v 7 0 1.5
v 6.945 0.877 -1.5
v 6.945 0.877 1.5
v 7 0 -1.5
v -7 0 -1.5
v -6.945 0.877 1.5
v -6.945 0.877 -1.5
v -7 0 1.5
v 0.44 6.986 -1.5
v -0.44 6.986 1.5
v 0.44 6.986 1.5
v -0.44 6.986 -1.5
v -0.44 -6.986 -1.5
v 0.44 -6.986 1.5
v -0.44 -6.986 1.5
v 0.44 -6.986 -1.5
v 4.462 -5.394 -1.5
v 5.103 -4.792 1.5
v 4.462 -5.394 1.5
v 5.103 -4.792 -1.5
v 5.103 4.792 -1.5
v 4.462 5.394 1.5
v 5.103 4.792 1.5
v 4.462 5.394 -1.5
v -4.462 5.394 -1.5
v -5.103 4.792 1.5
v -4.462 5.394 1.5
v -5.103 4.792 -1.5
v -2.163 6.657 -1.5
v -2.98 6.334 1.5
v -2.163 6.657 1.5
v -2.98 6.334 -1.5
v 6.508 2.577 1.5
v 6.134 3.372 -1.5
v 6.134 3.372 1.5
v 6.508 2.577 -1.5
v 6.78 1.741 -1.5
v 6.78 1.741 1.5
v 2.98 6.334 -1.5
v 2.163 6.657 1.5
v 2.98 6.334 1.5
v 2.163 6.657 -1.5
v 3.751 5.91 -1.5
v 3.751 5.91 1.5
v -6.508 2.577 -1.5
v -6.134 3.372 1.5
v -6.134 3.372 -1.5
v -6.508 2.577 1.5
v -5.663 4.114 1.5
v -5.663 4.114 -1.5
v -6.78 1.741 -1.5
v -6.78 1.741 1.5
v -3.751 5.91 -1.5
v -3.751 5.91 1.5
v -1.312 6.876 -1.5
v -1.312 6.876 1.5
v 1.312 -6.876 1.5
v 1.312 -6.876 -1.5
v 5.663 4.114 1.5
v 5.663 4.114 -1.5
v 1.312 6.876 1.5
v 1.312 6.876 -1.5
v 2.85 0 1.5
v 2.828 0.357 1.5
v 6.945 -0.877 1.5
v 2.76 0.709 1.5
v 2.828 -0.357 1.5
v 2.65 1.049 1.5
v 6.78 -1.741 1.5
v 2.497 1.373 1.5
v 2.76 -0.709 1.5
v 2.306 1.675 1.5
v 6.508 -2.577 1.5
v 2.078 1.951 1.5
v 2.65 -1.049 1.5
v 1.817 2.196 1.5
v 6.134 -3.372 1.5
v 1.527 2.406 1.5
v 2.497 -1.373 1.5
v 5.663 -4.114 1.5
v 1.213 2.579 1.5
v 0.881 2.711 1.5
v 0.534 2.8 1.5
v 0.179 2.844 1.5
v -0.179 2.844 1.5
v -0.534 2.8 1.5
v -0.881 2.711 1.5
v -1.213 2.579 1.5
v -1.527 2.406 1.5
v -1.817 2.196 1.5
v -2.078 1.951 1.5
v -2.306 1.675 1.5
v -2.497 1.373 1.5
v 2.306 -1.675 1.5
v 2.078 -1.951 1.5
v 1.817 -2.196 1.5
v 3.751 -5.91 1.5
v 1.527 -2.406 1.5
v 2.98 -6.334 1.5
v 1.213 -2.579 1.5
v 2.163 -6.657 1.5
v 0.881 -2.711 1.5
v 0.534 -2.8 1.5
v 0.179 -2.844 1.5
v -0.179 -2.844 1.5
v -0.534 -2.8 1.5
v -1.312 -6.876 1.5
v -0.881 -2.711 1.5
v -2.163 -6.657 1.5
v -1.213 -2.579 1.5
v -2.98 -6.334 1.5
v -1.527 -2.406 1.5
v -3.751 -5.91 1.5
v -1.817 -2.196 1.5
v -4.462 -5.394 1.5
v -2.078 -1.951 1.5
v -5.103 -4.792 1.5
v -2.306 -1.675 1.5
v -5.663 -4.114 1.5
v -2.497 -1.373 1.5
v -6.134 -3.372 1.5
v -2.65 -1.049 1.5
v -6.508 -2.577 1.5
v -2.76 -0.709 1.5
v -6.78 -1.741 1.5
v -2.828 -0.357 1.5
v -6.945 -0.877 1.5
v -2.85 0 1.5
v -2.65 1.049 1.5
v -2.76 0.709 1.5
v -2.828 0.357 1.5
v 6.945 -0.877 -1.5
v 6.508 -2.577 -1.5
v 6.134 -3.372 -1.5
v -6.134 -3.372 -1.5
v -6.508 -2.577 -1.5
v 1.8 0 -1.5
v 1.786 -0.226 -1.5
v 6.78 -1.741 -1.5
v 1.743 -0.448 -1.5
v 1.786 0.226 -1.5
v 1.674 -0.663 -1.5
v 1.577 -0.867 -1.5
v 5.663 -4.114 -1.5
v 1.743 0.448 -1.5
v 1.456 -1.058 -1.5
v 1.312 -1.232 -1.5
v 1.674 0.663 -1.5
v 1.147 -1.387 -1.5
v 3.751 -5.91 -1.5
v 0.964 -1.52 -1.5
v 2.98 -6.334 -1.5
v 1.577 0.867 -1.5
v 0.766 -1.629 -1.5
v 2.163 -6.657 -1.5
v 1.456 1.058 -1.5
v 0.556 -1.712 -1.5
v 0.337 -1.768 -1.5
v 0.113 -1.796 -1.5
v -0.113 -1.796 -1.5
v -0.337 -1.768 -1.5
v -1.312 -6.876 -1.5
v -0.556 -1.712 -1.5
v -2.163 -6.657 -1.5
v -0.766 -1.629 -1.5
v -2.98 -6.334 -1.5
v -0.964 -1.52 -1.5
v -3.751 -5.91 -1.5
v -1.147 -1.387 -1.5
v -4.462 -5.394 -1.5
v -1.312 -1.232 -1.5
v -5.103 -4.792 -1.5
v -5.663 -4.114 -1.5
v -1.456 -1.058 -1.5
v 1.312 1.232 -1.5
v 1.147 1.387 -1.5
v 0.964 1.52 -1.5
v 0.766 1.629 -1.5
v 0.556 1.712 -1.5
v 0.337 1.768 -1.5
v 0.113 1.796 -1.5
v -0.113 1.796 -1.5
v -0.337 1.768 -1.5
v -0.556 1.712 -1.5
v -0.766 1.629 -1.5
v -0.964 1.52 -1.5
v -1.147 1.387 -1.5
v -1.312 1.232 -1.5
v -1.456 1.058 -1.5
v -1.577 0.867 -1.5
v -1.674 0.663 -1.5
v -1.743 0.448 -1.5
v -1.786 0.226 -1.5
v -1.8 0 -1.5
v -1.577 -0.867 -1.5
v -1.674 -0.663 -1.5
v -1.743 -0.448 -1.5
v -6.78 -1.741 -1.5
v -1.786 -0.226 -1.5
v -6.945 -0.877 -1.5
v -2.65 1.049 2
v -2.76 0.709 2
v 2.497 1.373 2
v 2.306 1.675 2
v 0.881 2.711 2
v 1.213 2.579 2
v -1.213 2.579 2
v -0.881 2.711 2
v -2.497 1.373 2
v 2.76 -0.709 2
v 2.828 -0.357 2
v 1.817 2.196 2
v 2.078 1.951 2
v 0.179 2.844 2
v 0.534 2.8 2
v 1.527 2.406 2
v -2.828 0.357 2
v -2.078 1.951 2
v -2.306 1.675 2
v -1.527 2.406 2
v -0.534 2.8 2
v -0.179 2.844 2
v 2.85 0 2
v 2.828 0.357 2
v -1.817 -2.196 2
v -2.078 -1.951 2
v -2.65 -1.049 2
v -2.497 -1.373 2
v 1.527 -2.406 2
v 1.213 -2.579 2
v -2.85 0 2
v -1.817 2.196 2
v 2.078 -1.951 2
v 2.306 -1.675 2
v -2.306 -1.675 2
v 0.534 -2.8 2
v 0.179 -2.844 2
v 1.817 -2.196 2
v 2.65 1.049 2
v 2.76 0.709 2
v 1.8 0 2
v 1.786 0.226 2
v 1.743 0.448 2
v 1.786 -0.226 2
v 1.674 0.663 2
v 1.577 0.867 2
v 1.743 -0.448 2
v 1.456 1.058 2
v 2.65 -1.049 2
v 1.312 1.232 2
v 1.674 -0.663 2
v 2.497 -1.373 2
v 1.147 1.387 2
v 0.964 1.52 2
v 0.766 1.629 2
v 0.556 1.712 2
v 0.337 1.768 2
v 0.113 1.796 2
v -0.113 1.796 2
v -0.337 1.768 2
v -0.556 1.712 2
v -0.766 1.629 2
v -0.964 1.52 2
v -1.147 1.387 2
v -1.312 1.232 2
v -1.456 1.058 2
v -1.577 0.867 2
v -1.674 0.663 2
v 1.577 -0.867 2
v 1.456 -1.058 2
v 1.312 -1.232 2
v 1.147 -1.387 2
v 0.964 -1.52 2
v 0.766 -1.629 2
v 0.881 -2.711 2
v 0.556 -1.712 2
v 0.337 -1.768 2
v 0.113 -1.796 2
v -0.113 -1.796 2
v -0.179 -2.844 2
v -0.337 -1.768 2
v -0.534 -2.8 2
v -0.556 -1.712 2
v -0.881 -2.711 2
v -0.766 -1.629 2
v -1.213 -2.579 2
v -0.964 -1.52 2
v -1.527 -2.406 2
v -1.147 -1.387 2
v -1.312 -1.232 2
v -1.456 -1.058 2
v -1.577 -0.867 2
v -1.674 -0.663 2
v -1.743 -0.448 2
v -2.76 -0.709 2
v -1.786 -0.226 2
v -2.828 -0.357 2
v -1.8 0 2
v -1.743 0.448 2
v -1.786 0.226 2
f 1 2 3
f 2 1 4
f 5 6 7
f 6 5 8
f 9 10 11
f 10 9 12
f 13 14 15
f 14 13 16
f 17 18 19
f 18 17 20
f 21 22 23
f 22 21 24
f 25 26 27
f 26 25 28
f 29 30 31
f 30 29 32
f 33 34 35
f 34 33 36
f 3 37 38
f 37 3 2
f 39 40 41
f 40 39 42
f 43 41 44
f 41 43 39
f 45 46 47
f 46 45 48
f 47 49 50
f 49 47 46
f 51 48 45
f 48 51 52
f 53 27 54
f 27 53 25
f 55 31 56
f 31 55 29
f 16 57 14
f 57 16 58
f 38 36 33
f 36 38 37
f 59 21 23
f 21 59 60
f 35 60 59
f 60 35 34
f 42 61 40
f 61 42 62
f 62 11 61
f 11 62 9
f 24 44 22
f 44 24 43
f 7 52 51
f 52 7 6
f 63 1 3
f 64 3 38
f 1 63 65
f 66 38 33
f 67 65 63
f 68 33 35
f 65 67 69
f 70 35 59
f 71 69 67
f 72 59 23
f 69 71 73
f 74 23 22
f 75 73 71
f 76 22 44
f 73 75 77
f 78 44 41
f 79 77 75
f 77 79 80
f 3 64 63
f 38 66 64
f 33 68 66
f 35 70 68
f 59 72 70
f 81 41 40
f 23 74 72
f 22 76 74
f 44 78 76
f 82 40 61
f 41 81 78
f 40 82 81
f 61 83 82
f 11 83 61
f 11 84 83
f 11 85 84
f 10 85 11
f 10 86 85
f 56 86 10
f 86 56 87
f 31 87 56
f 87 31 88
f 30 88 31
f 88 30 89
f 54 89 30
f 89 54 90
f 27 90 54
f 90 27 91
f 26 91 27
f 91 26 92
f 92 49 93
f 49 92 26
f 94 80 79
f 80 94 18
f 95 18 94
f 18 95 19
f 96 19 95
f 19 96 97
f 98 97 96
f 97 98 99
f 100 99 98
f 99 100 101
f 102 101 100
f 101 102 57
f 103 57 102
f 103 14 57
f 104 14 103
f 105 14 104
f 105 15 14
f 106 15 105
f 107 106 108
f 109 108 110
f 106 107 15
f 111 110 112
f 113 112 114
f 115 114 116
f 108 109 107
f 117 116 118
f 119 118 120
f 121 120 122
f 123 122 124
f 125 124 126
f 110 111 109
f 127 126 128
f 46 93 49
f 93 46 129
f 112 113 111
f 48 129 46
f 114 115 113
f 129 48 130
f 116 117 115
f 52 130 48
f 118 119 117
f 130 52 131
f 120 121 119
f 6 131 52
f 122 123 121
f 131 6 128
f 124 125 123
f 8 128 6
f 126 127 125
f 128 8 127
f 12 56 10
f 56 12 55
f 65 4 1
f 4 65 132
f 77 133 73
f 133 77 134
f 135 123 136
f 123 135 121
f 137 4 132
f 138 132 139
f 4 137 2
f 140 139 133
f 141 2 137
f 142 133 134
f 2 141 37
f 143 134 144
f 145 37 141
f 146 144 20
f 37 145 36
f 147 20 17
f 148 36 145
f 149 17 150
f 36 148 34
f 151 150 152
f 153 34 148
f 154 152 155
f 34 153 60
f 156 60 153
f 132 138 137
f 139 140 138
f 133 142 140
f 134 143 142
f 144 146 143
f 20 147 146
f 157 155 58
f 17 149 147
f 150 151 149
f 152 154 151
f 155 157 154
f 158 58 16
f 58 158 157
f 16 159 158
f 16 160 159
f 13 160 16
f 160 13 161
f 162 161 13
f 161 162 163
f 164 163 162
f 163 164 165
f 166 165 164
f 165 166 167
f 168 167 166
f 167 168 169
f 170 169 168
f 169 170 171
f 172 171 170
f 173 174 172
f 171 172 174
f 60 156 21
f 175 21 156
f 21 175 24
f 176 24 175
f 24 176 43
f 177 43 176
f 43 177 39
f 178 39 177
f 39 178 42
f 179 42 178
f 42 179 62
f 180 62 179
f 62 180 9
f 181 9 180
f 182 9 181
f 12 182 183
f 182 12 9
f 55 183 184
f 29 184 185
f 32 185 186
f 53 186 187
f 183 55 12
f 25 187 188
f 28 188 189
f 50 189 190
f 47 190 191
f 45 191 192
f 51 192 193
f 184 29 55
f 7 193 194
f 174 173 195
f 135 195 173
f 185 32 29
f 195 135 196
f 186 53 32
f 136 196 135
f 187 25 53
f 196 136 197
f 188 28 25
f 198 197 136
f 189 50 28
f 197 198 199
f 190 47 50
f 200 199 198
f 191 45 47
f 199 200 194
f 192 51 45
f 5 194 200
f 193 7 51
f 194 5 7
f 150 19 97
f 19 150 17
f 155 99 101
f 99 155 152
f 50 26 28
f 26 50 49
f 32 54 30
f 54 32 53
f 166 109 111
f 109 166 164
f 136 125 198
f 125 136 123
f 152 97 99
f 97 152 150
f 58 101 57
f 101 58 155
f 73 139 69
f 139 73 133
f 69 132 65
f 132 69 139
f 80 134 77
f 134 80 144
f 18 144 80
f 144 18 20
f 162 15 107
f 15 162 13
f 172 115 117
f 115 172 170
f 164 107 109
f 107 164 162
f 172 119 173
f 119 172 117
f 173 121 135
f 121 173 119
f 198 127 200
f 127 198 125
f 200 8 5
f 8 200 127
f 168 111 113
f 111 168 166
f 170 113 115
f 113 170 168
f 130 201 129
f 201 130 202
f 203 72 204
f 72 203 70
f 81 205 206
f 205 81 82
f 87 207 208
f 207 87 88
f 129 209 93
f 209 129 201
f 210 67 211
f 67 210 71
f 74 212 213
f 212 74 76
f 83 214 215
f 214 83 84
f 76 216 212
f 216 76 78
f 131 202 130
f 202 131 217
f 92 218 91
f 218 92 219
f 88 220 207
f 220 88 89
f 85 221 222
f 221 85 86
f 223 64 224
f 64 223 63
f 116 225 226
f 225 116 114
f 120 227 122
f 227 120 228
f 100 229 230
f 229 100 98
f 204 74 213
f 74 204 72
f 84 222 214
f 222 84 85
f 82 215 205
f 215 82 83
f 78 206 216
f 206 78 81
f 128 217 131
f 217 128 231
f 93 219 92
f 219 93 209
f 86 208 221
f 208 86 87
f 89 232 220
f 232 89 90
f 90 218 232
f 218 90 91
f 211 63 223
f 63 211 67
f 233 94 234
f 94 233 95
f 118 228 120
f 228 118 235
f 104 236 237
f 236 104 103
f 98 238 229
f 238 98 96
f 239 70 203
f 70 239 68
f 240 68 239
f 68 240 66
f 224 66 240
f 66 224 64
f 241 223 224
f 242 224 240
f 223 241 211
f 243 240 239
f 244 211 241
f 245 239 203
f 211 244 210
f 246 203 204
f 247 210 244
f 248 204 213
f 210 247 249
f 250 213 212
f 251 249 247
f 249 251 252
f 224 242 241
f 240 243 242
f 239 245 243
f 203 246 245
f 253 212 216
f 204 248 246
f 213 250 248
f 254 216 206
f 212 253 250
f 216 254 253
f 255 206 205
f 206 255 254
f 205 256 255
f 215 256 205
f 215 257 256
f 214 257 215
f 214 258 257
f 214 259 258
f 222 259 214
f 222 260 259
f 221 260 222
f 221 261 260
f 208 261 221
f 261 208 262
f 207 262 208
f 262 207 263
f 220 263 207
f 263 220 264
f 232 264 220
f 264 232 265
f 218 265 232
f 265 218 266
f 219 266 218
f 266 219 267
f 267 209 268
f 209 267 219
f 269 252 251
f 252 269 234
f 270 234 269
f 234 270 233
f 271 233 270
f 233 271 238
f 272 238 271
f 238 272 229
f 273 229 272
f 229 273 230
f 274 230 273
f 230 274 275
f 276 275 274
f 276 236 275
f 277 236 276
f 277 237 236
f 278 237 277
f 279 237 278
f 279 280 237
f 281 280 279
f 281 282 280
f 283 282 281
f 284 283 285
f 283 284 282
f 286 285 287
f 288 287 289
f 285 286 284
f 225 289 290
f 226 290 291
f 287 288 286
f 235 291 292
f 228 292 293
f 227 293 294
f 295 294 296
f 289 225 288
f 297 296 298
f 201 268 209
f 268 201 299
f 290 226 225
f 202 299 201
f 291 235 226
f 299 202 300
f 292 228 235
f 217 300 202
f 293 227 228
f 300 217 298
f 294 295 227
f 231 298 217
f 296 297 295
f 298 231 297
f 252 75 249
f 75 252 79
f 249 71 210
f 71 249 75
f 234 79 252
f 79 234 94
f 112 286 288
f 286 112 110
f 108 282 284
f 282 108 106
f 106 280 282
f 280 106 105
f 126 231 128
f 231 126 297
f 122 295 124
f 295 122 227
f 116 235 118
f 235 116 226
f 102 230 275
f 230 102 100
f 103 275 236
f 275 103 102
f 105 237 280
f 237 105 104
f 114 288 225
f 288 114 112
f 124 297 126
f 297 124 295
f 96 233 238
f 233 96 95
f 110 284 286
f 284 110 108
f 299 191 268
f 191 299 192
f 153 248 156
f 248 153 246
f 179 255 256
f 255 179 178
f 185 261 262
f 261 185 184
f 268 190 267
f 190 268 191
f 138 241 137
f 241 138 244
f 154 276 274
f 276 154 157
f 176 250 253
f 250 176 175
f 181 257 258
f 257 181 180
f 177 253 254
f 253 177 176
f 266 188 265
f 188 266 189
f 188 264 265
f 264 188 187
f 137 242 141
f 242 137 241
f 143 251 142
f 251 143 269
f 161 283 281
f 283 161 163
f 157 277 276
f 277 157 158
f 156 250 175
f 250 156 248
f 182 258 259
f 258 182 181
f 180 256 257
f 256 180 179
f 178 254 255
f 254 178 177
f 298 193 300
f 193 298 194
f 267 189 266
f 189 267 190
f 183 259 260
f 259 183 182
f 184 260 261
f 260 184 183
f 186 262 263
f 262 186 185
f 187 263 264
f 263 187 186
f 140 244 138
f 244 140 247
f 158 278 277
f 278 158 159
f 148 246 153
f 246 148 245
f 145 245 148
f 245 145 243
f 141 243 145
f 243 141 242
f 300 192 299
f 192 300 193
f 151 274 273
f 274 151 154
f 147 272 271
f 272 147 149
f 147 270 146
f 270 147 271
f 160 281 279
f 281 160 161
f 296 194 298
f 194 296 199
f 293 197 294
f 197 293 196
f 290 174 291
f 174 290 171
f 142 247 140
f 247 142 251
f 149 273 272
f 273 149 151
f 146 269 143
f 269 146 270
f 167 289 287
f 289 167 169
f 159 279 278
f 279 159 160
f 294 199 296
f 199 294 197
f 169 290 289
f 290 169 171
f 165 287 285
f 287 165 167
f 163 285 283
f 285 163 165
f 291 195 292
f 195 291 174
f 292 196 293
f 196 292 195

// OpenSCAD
$fn = 50;


difference() {
	union() {
		translate(v = [0, 0, -1.5000000000]) {
			rotate(a = [0, 0, 0]) {
				cylinder(h = 3, r = 7.0000000000);
			}
		}
		translate(v = [0, 0, -1.5000000000]) {
			rotate(a = [0, 0, 0]) {
				cylinder(h = 3.5000000000, r = 2.8500000000);
			}
		}
	}
	union() {
		translate(v = [0, 0, -125.0000000000]) {
			rotate(a = [0, 0, 0]) {
				cylinder(h = 250, r = 1.8000000000);
			}
		}
	}
}
